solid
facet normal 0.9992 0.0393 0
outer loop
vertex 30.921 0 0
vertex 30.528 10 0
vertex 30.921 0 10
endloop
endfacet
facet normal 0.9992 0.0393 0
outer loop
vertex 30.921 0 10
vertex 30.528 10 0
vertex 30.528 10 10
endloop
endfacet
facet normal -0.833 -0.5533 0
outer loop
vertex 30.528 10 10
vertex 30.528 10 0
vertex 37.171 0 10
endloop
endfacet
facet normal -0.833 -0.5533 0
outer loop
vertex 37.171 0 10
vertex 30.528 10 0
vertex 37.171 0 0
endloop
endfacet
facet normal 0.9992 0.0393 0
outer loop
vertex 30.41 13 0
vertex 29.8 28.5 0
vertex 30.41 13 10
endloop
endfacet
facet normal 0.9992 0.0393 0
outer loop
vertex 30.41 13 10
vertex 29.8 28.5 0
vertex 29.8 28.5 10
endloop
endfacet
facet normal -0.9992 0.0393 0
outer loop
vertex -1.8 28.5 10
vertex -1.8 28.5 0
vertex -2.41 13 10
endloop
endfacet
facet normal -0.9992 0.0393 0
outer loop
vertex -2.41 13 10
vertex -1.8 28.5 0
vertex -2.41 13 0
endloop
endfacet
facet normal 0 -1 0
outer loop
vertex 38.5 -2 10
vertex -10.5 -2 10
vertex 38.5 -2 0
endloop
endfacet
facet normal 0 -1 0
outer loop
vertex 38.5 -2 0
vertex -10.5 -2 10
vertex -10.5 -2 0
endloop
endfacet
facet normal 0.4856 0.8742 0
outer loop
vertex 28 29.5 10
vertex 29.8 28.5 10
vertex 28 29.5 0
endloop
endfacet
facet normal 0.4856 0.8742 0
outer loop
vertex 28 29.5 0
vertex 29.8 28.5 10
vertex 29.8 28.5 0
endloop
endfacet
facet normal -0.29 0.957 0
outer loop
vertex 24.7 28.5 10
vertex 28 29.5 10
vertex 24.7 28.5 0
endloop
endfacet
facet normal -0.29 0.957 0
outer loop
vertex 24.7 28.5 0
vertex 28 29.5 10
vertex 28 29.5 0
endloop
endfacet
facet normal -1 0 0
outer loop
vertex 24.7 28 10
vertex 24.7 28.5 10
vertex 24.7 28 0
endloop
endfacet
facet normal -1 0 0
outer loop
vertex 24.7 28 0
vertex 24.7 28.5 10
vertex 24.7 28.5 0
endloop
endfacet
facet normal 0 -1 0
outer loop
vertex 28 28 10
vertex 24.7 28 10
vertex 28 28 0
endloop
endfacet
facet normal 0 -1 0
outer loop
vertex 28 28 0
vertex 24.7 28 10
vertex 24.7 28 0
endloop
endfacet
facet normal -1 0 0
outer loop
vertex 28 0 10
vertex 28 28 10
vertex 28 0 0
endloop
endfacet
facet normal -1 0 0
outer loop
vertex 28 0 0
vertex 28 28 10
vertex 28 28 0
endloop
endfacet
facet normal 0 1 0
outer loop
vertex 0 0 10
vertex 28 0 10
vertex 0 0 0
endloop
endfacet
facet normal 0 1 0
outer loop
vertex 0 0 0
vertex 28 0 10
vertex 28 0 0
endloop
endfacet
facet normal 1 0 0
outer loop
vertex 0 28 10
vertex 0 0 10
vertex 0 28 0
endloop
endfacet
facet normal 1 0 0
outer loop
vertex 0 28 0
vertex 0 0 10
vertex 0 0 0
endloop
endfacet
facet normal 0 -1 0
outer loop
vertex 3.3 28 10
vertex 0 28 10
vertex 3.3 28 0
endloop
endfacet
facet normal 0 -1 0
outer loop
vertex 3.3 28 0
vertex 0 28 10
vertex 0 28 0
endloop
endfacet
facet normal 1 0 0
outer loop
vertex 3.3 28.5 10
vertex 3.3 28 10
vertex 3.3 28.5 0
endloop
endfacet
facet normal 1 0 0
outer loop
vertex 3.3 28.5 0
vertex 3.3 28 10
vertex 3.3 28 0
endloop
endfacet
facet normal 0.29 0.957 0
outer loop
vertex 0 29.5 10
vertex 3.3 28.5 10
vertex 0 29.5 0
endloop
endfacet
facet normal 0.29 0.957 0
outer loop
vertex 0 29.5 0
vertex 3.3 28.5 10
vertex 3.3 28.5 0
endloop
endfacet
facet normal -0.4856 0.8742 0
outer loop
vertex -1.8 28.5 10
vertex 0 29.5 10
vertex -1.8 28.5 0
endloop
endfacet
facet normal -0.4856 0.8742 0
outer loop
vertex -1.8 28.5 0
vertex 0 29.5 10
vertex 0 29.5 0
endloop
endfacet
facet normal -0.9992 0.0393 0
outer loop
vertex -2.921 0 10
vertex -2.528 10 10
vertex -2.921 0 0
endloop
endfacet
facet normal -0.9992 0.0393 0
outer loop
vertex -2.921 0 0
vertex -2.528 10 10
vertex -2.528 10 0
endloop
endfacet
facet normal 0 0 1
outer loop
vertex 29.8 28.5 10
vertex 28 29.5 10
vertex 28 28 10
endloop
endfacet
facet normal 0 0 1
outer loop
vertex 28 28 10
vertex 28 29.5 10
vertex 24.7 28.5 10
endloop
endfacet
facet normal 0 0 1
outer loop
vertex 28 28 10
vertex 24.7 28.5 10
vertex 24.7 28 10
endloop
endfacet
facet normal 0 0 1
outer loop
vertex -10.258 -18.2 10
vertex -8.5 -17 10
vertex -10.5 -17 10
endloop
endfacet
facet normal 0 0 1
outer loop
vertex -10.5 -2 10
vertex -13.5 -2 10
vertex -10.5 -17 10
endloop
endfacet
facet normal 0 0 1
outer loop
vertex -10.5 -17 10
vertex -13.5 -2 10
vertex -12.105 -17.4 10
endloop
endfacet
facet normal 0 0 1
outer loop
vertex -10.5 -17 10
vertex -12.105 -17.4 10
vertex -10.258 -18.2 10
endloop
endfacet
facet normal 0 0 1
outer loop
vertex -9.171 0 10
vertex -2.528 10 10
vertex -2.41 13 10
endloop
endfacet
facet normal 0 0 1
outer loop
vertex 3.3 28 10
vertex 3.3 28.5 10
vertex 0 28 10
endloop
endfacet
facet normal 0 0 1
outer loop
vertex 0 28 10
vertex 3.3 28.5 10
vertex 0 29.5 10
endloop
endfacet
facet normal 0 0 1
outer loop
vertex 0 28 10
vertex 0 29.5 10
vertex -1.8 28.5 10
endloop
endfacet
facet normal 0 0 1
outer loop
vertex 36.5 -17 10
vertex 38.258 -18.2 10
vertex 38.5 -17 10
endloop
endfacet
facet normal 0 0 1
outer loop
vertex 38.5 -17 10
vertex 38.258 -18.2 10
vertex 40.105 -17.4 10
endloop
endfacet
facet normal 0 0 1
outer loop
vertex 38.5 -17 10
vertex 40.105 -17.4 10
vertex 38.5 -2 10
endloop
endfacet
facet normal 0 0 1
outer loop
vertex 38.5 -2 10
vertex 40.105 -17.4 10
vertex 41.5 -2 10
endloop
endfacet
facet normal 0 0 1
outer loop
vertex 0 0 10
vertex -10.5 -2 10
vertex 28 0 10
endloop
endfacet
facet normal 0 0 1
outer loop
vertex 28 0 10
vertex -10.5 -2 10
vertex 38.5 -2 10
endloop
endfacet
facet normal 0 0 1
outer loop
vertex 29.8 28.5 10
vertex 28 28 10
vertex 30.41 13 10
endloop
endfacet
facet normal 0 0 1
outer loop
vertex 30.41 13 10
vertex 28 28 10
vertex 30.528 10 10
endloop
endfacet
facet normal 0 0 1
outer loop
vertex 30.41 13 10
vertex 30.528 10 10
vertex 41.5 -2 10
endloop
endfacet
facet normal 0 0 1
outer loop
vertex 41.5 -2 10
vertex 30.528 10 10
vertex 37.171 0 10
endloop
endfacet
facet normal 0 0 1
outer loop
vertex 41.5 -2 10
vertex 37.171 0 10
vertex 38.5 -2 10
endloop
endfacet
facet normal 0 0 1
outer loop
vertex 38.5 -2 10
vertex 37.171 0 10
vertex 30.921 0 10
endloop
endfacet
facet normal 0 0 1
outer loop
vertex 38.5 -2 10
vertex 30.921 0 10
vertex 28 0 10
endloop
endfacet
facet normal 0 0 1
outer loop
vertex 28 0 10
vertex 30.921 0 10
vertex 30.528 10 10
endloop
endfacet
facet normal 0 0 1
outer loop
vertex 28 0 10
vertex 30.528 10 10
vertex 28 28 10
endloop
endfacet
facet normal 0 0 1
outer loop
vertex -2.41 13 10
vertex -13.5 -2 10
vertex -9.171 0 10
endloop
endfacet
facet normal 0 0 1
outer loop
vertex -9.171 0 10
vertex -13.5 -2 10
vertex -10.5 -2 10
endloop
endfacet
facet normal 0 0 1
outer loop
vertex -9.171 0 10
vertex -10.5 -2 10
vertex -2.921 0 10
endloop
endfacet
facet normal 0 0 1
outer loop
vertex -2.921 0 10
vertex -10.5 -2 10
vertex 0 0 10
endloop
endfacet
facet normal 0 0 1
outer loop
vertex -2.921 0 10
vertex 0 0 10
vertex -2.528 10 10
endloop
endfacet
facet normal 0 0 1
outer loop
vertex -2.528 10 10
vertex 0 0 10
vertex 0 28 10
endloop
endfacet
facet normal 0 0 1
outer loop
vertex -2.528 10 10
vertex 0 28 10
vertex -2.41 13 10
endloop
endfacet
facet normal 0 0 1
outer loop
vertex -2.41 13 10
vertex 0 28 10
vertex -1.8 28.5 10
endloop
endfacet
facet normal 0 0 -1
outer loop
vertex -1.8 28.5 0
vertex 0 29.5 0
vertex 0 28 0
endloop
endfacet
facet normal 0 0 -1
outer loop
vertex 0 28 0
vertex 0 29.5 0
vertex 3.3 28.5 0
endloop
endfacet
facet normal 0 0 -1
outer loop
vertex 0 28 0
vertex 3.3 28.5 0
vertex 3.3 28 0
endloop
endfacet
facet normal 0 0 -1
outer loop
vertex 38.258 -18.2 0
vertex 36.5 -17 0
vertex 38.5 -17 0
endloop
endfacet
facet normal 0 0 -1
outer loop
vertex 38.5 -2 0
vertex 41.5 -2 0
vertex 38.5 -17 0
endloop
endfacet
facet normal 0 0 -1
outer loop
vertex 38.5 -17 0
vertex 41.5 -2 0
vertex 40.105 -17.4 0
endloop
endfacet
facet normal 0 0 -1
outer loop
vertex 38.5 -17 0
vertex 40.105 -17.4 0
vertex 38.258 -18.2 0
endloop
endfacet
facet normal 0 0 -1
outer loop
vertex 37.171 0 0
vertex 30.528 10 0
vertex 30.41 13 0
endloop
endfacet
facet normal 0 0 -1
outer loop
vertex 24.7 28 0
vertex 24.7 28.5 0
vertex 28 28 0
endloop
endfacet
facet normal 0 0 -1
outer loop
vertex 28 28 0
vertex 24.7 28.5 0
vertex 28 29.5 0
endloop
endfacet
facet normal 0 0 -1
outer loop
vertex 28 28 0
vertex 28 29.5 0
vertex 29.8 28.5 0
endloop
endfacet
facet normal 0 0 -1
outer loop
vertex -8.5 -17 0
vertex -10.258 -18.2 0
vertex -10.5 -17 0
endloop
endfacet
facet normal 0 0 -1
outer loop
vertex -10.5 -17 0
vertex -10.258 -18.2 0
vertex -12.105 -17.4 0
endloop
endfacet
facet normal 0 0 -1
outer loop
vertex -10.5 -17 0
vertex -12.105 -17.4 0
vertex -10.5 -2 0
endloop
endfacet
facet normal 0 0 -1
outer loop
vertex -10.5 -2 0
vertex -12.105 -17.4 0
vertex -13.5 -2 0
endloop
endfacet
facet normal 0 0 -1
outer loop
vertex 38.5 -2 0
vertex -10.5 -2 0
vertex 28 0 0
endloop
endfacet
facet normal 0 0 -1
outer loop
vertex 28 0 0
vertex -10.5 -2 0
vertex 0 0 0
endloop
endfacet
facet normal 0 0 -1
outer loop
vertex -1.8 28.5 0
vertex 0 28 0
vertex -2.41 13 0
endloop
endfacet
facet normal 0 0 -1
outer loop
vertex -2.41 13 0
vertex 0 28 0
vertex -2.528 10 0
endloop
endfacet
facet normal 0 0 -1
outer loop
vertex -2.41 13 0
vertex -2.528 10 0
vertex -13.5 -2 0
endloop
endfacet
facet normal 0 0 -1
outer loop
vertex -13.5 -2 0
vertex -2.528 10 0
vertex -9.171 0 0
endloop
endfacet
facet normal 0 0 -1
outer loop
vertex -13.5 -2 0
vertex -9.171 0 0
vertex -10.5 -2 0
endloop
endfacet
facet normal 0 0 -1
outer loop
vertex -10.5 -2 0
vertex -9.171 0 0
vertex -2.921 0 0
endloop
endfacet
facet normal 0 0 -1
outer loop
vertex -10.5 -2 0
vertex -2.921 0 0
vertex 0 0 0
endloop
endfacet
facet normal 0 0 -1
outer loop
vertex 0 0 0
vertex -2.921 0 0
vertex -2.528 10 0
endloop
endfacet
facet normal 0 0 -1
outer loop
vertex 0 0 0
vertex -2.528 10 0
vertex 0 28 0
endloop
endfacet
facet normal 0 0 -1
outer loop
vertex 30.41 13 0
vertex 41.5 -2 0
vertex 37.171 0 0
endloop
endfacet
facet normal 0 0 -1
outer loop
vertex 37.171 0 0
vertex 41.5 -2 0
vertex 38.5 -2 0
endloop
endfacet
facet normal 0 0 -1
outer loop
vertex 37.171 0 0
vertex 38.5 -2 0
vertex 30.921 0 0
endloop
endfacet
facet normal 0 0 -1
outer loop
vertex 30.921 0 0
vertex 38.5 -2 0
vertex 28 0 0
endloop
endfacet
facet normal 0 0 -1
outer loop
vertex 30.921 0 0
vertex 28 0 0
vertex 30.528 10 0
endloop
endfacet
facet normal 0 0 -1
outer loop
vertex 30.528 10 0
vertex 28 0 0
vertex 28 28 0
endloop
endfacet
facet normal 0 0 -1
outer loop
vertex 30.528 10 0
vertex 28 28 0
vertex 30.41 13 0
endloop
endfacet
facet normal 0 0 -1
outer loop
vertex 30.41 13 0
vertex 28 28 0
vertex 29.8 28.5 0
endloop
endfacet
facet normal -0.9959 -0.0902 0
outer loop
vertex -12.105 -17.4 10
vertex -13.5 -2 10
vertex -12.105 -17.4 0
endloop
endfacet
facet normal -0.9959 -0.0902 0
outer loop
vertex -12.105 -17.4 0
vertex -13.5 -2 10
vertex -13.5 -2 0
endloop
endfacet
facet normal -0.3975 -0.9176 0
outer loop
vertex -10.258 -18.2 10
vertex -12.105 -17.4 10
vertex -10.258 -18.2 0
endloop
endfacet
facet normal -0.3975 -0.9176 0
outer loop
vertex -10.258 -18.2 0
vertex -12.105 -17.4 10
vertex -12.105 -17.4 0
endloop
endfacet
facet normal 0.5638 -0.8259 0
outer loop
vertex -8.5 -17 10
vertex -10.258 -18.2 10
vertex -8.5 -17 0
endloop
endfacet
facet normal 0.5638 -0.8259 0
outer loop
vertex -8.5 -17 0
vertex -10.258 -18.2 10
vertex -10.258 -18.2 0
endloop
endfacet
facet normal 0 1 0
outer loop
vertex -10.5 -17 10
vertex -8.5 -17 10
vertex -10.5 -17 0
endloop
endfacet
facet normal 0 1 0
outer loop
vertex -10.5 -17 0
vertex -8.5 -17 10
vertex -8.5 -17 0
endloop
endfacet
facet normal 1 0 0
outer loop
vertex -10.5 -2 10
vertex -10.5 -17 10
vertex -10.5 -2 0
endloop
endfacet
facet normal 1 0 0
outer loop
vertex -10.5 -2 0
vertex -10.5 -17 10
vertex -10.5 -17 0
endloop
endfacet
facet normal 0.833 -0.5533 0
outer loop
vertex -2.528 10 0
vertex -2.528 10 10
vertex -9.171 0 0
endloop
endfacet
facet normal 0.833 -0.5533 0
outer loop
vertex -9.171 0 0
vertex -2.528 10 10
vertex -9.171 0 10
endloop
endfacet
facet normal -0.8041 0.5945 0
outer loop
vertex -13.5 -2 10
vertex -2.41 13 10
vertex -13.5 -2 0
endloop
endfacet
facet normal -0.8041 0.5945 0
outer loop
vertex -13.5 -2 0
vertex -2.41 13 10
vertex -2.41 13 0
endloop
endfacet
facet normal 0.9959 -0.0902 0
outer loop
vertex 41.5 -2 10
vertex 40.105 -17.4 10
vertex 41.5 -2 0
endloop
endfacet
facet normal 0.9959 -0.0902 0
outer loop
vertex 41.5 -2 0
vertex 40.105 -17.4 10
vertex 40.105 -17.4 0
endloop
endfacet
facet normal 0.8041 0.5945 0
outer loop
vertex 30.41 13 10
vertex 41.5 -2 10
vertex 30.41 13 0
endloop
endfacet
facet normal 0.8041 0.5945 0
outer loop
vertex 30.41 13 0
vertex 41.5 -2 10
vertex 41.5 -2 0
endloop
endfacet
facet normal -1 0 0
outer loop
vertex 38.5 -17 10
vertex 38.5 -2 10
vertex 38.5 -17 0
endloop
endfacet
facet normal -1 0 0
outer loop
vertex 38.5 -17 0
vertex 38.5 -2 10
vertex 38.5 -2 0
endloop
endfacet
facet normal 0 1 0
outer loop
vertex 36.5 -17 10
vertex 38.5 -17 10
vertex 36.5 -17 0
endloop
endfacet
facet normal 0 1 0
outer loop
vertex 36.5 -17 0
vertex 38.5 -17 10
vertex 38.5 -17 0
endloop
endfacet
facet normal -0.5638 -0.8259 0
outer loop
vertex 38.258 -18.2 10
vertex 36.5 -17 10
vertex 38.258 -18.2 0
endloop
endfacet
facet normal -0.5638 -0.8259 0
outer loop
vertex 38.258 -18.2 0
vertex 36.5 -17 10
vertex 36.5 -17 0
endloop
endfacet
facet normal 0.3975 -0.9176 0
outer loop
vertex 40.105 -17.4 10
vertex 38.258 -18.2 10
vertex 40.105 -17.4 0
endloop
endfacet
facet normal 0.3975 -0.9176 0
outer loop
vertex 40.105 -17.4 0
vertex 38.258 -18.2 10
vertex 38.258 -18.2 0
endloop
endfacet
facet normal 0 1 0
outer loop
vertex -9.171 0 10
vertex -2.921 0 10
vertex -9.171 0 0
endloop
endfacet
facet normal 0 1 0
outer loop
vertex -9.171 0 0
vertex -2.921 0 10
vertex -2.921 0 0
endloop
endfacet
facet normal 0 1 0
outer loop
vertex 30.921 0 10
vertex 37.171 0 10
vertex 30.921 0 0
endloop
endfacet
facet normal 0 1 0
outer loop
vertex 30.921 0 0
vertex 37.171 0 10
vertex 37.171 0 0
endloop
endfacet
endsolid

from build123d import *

# Parameters (mm, degrees)
AUFSATZ_LINEAR_AUSTRAGEN1_DEPTH = 10
AUFSATZ_LINEAR_AUSTRAGEN2_DEPTH = 10
AUFSATZ_LINEAR_AUSTRAGEN3_DEPTH = 10


with BuildPart() as part:
    # Skizze1 → Aufsatz-Linear austragen1 (new body)
    with BuildSketch(Plane.XY):
        Polygon((0, 29.5), (-1.8, 28.5), (-3, -2), (31, -2), (29.8, 28.5), (28, 29.5), (24.7, 28.5), (24.7, 28), (28, 28), (28, 0), (0, 0), (0, 28), (3.3, 28), (3.3, 28.5), align=None)
    extrude(amount=AUFSATZ_LINEAR_AUSTRAGEN1_DEPTH)

    # Skizze1<3> → Aufsatz-Linear austragen2 (add)
    with BuildSketch(Plane.XY):
        Polygon((-2.527868852, 10), (-2.409836066, 13), (-13.5, -2), (-12.105255888, -17.4), (-10.257932824, -18.2), (-8.5, -17), (-10.5, -17), (-10.5, -2), align=None)
        Polygon((30.527868852, 10), (38.5, -2), (38.5, -17), (36.5, -17), (38.257932824, -18.2), (40.105255888, -17.4), (41.5, -2), (30.409836066, 13), align=None)
    extrude(amount=AUFSATZ_LINEAR_AUSTRAGEN2_DEPTH)

    # Skizze1<4> → Aufsatz-Linear austragen3 (add)
    with BuildSketch(Plane.XY):
        Polygon((-3, -2), (-2.921311475, 0), (-9.171311475, 0), (-10.5, -2), align=None)
        Polygon((30.921311475, 0), (31, -2), (38.5, -2), (37.171311475, 0), align=None)
    extrude(amount=AUFSATZ_LINEAR_AUSTRAGEN3_DEPTH)


solid = part.part
